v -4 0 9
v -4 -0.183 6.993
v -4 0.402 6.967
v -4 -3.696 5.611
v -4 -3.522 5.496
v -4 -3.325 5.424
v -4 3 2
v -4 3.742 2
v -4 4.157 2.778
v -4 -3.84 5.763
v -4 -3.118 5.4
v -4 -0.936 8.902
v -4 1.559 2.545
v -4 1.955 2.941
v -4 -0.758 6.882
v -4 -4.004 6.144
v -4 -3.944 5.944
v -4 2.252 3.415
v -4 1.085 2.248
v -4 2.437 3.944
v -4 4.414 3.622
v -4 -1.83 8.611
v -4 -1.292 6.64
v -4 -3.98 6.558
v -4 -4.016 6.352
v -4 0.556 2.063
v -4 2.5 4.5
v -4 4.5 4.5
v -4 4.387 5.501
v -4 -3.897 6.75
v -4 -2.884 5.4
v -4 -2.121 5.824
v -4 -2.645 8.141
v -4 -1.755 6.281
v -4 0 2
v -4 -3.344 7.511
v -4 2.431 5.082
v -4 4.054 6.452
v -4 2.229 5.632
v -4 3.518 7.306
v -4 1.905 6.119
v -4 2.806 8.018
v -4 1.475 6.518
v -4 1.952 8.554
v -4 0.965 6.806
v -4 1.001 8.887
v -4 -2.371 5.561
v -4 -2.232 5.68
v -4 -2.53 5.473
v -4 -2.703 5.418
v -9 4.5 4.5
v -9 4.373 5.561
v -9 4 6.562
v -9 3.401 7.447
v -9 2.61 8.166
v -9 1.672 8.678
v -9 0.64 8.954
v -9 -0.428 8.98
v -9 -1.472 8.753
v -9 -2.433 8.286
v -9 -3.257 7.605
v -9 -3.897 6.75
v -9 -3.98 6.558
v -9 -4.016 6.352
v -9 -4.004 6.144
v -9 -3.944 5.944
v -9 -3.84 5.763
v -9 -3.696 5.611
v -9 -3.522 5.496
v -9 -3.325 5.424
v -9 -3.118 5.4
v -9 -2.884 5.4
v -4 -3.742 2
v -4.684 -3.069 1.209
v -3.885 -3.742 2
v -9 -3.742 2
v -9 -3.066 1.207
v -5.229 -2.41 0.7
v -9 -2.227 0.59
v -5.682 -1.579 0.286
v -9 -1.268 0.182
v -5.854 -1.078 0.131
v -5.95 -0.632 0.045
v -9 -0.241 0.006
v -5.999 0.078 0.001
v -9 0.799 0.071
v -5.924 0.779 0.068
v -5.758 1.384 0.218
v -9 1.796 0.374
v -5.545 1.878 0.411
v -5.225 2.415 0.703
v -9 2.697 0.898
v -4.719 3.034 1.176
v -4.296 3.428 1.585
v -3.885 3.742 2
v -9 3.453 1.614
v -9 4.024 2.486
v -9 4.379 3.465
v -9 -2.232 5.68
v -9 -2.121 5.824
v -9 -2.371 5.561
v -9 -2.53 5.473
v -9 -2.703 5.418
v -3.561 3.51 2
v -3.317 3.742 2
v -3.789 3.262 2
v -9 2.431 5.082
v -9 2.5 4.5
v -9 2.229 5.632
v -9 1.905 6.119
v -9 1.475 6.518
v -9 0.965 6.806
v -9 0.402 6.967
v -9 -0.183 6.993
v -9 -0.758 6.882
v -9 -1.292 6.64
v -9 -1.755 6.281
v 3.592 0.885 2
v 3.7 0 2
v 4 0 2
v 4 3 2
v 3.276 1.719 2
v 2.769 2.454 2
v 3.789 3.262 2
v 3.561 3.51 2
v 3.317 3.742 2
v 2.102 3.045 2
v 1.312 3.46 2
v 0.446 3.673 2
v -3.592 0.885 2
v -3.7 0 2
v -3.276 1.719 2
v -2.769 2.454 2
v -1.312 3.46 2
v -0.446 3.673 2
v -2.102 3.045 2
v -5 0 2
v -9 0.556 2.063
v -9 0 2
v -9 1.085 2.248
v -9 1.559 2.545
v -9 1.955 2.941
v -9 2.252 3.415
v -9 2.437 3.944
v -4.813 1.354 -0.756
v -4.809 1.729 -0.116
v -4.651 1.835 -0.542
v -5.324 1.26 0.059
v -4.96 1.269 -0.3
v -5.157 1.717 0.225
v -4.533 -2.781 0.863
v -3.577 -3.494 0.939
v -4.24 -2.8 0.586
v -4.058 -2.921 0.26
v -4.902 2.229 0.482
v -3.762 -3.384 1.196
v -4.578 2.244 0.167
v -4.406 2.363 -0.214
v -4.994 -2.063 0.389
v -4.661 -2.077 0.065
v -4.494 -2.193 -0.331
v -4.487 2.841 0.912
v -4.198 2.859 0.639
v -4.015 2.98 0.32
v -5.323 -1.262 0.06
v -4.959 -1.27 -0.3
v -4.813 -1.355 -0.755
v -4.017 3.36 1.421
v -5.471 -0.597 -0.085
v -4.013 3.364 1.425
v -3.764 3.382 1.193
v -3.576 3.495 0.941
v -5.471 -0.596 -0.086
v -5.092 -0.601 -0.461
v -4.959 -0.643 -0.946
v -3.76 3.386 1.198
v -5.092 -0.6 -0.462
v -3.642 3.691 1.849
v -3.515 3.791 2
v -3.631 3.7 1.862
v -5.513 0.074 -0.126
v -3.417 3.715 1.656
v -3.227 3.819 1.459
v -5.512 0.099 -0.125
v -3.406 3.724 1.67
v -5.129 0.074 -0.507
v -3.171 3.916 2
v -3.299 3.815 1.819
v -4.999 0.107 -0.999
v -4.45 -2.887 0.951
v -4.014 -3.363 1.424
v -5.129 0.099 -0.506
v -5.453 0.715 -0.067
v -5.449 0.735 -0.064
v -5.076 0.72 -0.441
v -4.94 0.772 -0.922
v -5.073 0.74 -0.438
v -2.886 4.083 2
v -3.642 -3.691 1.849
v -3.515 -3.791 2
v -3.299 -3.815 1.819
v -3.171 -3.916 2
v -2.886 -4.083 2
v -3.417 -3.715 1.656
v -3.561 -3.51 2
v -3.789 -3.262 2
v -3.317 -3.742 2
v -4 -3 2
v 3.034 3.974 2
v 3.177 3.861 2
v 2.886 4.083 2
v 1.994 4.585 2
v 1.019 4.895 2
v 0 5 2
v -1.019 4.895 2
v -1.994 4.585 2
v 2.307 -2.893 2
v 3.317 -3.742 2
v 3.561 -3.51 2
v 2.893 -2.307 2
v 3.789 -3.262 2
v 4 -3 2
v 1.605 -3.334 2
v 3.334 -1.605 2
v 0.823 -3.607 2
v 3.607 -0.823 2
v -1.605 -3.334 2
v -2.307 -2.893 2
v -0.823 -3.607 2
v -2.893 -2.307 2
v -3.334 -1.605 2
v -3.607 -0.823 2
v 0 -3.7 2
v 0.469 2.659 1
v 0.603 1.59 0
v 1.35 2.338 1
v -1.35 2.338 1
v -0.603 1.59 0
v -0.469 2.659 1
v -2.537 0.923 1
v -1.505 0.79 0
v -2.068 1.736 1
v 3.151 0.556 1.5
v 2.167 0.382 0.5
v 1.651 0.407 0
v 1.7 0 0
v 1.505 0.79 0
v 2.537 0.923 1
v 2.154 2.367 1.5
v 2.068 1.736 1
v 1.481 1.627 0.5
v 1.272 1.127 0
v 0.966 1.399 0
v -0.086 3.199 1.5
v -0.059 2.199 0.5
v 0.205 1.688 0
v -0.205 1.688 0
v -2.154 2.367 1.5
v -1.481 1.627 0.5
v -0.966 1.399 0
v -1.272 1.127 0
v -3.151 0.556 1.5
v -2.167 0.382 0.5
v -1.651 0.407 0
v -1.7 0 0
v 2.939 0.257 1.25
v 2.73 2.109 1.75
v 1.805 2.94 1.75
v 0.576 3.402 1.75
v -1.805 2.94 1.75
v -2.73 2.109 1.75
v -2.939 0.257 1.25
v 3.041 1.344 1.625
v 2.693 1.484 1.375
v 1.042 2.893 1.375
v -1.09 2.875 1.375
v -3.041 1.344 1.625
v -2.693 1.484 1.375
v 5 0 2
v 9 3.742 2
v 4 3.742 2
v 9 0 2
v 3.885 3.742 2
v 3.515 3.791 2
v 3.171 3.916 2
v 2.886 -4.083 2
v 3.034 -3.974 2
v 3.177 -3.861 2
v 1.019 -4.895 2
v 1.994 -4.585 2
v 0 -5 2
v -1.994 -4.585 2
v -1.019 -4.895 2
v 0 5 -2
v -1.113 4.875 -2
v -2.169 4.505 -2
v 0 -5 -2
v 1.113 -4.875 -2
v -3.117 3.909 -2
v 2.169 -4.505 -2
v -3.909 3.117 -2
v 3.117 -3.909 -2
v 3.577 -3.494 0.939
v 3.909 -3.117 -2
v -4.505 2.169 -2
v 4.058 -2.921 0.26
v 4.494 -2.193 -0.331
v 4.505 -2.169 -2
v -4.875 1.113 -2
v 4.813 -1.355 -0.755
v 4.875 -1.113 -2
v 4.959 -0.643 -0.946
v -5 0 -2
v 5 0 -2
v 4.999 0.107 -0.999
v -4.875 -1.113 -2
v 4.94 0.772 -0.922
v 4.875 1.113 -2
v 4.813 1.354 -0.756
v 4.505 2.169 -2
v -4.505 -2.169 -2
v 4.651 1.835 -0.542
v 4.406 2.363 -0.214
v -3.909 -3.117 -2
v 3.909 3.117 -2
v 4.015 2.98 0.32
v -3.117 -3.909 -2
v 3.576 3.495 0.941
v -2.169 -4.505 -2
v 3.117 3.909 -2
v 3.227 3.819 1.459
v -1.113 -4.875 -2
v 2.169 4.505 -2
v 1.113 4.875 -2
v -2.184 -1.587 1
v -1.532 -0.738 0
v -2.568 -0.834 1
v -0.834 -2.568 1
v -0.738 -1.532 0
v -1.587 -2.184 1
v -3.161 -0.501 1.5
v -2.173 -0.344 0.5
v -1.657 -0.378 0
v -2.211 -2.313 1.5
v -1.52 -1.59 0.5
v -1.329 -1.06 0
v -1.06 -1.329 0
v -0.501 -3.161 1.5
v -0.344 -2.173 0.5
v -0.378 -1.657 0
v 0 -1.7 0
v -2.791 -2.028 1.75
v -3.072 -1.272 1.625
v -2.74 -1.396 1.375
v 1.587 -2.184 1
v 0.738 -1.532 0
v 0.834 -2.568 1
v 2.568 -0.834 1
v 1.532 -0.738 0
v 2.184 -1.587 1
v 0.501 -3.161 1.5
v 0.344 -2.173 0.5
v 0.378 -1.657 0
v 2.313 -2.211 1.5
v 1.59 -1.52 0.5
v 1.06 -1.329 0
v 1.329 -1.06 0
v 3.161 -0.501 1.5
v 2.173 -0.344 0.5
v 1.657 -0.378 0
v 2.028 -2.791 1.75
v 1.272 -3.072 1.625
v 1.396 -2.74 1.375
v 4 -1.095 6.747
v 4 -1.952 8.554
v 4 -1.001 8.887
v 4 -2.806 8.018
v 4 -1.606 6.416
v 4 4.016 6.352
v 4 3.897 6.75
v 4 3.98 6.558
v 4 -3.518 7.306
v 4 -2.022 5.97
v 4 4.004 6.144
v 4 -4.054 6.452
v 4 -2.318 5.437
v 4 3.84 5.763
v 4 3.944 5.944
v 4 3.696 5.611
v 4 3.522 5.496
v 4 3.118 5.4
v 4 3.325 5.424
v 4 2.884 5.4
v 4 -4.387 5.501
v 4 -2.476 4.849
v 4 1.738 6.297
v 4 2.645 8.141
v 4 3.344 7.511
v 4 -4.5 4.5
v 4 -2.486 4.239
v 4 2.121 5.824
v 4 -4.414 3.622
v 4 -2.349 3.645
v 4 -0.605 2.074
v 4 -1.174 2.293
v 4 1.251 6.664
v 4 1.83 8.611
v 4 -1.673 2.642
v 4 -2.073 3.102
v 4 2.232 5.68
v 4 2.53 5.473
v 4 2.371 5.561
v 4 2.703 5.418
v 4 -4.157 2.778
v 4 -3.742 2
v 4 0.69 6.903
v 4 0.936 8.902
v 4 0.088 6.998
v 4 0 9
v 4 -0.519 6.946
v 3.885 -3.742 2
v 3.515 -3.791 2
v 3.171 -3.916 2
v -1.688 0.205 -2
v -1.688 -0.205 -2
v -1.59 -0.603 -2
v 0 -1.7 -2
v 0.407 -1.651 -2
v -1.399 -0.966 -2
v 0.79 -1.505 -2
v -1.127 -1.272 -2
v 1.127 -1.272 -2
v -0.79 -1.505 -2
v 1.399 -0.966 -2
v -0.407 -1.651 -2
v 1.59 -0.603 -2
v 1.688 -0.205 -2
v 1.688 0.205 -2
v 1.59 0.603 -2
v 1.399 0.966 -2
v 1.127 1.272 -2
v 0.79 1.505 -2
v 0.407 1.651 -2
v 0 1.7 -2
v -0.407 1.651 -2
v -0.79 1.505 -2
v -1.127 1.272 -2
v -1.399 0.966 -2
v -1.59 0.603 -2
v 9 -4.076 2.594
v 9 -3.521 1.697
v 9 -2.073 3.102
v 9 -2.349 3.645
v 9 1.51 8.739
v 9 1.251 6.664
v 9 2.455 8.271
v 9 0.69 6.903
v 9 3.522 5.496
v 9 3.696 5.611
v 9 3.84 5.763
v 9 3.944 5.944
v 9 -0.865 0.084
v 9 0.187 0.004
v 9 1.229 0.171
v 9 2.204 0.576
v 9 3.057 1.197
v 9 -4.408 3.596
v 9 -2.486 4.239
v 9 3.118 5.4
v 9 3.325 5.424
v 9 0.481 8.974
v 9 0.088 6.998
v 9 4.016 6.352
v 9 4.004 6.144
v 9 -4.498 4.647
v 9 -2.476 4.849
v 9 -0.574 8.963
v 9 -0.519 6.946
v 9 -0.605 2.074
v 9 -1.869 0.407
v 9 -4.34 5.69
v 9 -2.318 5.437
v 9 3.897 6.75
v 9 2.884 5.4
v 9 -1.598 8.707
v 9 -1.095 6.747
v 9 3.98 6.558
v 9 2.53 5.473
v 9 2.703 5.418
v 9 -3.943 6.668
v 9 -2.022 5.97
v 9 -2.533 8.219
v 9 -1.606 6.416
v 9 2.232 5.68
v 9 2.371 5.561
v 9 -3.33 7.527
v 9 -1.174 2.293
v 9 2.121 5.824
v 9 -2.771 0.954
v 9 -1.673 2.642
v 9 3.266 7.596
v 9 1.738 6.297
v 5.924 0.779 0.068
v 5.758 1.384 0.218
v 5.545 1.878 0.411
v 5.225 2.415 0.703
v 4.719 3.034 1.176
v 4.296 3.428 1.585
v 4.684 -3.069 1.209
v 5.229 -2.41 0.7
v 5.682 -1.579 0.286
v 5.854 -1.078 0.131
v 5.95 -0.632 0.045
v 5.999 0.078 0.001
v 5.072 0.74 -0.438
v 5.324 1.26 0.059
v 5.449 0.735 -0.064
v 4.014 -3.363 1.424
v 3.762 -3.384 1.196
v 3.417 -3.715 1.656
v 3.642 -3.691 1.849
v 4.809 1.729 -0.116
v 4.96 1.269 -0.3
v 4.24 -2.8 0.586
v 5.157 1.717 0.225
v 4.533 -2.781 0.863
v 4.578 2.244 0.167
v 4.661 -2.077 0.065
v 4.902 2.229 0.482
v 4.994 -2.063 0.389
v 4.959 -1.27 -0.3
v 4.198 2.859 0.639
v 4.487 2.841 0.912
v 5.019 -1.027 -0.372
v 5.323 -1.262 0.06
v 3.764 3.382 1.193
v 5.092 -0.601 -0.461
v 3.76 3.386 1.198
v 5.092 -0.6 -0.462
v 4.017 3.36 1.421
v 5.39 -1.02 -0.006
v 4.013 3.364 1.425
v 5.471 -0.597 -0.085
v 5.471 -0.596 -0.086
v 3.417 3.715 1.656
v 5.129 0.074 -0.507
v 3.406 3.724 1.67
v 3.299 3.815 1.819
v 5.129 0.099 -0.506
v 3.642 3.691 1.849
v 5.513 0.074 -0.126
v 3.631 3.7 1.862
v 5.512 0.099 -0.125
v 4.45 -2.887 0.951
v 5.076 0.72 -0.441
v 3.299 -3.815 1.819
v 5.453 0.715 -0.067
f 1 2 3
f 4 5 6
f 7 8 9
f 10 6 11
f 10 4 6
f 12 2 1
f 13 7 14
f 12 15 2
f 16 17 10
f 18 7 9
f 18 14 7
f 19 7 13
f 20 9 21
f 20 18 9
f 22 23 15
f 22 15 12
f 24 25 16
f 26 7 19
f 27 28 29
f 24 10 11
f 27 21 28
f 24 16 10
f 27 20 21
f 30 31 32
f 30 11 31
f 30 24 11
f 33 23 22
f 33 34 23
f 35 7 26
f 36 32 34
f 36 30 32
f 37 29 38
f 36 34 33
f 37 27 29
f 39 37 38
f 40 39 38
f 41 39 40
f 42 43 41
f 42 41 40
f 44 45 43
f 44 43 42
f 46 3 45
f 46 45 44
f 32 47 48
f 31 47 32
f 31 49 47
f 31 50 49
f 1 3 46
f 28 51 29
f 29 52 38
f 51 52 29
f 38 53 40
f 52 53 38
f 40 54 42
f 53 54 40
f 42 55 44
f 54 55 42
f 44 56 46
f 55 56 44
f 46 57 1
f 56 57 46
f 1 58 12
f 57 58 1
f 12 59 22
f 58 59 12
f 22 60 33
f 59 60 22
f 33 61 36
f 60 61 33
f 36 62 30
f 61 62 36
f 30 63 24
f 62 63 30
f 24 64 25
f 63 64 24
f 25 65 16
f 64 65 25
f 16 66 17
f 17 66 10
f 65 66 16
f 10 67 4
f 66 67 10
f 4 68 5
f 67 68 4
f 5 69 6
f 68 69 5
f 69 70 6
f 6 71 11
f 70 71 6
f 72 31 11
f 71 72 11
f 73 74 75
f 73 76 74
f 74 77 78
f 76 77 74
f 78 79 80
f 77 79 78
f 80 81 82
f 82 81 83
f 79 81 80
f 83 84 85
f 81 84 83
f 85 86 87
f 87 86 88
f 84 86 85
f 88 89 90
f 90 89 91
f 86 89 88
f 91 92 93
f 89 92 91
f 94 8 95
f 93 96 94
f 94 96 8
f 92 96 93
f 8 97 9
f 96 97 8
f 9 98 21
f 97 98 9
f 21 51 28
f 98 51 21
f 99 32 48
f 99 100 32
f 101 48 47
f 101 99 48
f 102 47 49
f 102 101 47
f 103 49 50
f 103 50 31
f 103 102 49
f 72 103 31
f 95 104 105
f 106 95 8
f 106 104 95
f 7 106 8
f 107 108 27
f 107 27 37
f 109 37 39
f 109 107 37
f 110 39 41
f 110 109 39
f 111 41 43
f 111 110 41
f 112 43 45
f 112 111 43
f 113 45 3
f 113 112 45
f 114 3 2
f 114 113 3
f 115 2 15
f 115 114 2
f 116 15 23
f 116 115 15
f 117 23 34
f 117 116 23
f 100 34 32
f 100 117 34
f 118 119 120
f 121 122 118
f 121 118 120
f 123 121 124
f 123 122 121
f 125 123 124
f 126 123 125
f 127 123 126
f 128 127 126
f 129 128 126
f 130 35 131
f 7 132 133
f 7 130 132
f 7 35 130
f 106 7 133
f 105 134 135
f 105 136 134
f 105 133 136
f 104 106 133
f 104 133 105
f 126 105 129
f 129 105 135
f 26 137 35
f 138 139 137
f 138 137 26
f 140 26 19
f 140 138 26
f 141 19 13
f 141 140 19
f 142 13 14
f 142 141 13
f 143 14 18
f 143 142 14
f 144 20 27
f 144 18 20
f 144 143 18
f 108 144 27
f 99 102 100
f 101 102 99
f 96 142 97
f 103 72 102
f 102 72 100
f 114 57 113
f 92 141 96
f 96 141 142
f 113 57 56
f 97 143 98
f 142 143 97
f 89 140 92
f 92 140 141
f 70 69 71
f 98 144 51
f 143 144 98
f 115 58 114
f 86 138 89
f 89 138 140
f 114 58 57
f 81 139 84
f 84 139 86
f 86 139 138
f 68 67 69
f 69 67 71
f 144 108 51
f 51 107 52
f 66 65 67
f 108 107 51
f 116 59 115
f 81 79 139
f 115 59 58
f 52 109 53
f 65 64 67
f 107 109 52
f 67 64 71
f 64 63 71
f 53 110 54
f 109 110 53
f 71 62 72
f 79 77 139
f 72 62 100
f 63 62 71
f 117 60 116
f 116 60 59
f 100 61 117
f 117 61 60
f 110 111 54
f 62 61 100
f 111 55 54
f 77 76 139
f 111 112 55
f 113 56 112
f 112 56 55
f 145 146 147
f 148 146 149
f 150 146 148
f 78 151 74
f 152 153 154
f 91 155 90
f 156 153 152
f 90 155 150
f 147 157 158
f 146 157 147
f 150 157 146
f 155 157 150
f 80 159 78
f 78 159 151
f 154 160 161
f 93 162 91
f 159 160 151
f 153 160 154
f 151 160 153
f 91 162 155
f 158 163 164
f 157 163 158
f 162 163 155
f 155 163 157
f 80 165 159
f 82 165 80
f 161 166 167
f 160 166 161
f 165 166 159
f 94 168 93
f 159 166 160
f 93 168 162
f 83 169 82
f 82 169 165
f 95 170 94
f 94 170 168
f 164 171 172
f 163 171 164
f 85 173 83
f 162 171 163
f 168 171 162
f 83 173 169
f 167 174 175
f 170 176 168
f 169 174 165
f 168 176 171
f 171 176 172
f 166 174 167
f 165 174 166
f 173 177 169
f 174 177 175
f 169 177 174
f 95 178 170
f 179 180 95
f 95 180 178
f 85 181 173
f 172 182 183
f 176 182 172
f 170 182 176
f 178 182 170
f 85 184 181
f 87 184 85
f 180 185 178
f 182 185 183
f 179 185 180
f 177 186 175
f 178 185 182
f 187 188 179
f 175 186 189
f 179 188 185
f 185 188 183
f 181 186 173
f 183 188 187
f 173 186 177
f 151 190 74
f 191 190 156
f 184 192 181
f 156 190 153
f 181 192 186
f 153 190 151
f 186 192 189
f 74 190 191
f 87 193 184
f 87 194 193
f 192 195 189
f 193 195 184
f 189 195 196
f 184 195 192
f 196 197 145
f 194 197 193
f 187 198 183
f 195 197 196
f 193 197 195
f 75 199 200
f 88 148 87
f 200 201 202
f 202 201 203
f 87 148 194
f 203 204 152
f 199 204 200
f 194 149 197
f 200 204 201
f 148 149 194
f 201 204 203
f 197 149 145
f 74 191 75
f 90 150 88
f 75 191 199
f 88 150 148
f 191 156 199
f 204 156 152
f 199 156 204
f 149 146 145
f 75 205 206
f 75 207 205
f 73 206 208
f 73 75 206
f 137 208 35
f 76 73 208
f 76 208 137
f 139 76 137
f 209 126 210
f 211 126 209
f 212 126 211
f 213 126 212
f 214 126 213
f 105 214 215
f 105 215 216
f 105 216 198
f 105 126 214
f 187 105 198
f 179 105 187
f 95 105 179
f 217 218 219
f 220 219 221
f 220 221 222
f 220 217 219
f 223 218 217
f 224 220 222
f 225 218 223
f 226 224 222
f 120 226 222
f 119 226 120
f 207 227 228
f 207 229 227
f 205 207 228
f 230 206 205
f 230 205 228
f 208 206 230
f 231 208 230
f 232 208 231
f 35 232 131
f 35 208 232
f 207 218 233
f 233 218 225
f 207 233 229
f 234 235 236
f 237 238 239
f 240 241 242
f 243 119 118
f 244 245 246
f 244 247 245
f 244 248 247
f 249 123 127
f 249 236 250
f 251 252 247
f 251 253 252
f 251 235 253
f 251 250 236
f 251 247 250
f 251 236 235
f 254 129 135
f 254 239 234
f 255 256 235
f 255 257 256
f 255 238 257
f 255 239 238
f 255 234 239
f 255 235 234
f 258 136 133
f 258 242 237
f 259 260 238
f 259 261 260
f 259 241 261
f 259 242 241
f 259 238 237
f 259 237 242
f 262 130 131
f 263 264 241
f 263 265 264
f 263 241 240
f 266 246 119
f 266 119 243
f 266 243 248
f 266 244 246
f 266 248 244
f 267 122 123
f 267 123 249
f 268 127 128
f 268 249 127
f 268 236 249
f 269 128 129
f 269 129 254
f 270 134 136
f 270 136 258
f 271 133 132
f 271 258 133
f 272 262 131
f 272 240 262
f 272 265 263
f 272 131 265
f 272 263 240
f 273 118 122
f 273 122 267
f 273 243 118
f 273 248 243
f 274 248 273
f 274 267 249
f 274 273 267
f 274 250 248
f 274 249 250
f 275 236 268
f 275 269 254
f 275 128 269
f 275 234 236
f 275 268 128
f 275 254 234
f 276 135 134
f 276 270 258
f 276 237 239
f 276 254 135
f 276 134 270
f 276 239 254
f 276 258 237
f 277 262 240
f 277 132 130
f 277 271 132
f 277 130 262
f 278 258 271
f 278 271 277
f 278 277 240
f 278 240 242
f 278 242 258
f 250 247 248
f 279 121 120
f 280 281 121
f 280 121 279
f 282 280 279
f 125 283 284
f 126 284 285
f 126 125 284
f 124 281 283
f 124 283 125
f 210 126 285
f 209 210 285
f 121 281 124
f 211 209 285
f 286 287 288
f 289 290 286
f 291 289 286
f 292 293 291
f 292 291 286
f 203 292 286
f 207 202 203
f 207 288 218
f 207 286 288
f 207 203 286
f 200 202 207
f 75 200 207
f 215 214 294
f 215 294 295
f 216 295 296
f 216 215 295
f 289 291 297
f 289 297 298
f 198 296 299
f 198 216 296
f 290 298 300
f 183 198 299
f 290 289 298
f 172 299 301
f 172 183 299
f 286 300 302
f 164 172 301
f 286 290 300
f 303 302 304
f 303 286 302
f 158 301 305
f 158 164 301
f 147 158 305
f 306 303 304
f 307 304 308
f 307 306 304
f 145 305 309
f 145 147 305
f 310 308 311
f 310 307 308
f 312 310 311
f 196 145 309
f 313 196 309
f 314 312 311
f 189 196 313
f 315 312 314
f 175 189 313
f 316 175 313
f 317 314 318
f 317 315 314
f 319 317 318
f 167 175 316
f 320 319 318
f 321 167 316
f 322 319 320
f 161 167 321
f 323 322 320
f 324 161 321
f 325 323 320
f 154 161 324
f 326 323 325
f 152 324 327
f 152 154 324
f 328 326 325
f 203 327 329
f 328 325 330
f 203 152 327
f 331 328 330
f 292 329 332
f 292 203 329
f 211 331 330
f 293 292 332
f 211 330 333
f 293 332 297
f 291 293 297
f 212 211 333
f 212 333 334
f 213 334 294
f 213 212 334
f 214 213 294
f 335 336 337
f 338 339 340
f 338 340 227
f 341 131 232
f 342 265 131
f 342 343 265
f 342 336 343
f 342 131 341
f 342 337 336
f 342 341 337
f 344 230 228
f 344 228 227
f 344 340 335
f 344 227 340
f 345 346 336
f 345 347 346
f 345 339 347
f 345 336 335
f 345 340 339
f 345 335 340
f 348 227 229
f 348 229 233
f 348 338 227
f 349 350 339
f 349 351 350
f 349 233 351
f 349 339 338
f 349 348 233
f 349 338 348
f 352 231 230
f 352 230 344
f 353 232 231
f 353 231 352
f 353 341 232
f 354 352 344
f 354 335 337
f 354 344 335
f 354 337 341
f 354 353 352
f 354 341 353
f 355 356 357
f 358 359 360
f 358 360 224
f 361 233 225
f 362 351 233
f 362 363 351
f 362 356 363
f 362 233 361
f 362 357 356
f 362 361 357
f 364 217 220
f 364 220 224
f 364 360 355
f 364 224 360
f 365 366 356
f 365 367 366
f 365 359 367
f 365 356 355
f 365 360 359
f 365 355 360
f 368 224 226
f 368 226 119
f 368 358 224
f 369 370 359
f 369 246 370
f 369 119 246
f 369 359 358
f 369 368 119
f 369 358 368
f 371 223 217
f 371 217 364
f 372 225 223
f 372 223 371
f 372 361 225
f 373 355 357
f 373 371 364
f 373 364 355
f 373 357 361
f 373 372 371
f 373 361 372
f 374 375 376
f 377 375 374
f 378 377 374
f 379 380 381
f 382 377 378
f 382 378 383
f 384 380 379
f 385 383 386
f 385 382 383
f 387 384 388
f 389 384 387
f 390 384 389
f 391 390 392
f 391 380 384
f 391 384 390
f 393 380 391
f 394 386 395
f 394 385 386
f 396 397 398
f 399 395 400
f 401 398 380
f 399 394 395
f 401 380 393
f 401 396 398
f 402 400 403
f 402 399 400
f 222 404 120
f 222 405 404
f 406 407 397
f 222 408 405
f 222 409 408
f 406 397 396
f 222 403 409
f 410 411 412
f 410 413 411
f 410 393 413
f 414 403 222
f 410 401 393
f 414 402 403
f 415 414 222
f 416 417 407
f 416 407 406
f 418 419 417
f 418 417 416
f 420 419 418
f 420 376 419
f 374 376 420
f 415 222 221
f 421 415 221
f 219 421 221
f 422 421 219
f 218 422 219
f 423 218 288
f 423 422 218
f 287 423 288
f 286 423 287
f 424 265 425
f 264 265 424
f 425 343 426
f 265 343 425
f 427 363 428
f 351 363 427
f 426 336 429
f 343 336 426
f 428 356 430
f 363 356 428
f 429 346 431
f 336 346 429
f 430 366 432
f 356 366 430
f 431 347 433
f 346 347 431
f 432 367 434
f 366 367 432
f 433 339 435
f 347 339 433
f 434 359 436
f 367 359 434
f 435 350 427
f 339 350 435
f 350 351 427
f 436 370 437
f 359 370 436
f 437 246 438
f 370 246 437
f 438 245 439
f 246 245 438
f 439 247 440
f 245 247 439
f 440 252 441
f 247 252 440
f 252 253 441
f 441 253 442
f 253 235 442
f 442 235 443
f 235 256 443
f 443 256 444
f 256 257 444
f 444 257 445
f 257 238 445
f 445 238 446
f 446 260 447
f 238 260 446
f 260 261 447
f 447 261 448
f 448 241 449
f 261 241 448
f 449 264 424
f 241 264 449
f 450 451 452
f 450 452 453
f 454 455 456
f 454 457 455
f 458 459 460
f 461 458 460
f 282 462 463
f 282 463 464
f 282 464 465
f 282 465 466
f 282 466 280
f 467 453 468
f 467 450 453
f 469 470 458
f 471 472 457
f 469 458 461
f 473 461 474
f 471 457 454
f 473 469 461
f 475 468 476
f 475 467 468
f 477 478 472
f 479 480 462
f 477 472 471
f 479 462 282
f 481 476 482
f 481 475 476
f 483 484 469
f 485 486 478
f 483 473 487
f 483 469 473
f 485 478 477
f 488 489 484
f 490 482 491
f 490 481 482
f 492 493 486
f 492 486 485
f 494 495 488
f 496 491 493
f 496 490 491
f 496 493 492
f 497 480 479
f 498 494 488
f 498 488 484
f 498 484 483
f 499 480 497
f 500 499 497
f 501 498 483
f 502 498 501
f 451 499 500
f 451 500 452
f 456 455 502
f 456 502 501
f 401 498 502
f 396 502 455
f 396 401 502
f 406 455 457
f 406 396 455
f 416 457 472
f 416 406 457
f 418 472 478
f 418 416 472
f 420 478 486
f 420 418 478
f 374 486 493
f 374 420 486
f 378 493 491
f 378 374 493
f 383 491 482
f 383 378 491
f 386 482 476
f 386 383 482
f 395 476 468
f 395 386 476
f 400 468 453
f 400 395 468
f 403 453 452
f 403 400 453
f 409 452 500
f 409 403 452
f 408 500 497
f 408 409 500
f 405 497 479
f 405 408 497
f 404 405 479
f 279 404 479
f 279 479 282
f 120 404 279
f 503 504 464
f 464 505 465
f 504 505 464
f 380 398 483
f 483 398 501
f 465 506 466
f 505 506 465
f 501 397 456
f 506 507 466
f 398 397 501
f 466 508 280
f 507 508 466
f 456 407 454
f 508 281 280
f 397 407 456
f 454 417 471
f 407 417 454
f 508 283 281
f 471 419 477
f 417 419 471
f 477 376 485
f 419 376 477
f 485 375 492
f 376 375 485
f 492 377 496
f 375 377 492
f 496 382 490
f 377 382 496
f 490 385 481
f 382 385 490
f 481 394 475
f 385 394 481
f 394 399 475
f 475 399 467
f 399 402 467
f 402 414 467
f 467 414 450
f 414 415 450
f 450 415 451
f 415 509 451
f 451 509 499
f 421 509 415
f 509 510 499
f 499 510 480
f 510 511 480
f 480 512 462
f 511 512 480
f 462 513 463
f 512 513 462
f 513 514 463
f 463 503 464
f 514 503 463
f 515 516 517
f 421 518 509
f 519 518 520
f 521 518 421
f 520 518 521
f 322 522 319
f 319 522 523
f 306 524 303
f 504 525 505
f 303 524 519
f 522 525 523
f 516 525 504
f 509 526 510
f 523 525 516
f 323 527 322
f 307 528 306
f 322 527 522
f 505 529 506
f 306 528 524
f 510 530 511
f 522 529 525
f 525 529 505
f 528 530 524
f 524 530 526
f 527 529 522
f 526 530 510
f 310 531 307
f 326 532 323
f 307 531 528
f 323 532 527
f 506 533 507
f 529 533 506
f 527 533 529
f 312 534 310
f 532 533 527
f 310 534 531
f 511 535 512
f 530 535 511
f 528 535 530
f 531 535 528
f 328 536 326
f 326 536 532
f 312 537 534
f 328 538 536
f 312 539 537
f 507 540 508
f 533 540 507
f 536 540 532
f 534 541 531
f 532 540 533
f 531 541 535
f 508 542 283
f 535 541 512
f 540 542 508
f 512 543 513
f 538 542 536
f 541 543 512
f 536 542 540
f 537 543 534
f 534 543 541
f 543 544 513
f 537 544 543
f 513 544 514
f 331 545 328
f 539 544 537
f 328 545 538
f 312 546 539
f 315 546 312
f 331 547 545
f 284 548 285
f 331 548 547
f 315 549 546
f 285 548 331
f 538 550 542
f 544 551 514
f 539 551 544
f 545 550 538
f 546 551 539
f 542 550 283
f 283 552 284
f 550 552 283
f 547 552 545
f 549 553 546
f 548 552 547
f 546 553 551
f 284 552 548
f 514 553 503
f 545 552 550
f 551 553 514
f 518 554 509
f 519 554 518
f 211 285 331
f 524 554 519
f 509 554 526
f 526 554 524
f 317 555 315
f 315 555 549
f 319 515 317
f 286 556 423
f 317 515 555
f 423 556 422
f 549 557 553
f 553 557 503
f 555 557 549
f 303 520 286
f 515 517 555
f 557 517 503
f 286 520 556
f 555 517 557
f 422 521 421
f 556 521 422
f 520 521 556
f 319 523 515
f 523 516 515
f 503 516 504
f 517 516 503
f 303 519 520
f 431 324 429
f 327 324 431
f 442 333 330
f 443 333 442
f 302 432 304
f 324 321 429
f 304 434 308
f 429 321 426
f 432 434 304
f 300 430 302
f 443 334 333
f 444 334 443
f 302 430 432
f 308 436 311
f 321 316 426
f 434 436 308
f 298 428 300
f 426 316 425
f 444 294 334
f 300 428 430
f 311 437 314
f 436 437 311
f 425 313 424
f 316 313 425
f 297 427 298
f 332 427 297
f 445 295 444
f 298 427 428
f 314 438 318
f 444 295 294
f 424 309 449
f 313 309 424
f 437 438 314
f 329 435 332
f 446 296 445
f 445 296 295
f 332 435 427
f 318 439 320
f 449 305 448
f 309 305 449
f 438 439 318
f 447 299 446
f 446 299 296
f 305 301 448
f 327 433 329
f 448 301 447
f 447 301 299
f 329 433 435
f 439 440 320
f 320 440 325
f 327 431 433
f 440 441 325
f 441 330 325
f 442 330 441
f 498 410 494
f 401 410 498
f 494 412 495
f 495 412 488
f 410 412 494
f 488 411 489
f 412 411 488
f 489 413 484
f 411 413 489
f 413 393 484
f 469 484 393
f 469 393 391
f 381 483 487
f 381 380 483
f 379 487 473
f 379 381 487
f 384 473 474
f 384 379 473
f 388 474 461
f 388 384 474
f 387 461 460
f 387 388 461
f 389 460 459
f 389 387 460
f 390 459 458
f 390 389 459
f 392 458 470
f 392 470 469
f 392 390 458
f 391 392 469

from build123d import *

# Parameters (mm, degrees)
SKETCH001_R        = 4.5
SKETCH001_R_2      = 2.5
PAD001_DEPTH       = 9
SKETCH_W           = 8
SKETCH_H           = 7
POCKET_DEPTH       = 4.5
SKETCH006_R        = 5
PAD_DEPTH          = 4
SKETCH004_W        = 4.5
SKETCH004_H        = 3.4
POCKET001_DEPTH    = 5
POLARPATTERN_COUNT = 2
SKETCH007_R        = 1.7
POCKET002_DEPTH    = 4
FILLET_R           = 1
CHAMFER_SIZE       = 2
FILLET001_R        = 0.9


with BuildPart() as part:
    # Sketch001 → Pad001 (new body, symmetric)
    with BuildSketch(Plane.YZ):
        with Locations((0, 4.5)):
            Circle(SKETCH001_R)
        with Locations((0, 4.5)):
            Circle(SKETCH001_R_2, mode=Mode.SUBTRACT)
    extrude(amount=PAD001_DEPTH, both=True)

    # Sketch → Pocket (cut, symmetric)
    with BuildSketch(Plane.XZ):
        with Locations((0, 5.5)):
            Rectangle(SKETCH_W, SKETCH_H)
    extrude(amount=POCKET_DEPTH, both=True, mode=Mode.SUBTRACT)

    # Sketch006 → Pad (join)
    with BuildSketch(Plane(origin=(0, 0, 2), x_dir=(0, -1, 0), z_dir=(0, 0, 1))):
        Circle(SKETCH006_R)
    extrude(amount=-PAD_DEPTH)

    # Sketch004 → Pocket001 (cut)
    with BuildSketch(Plane.YZ.offset(9)):
        with Locations((2.25, 3.7)):
            Rectangle(SKETCH004_W, SKETCH004_H)
    pocket001 = extrude(amount=-POCKET001_DEPTH, mode=Mode.SUBTRACT)

    # PolarPattern: Pocket001 ×2 about axis
    polarpattern_axis = Axis((0, 0, 0), (0, 0, 1))
    for i in range(1, POLARPATTERN_COUNT):
        add(pocket001.rotate(polarpattern_axis, i * 360 / POLARPATTERN_COUNT), mode=Mode.SUBTRACT)

    # Sketch007 (on Face9 of Pad) → Pocket002 (cut)
    with BuildSketch(Plane(origin=(0, 0, 2), x_dir=(0, -1, 0), z_dir=(0, 0, 1))):
        Circle(SKETCH007_R)
    extrude(amount=-POCKET002_DEPTH, mode=Mode.SUBTRACT)

    # Fillet
    fillet_edges = [part.edges().sort_by_distance(p)[0] for p in [
        (-5, 0, 0),
        (5, 0, 0),
    ]]
    fillet(fillet_edges, radius=FILLET_R)

    # Chamfer
    chamfer_edges = [part.edges().sort_by_distance(p)[0] for p in [
        (1.202082, -1.202082, 2),
    ]]
    chamfer(chamfer_edges, length=CHAMFER_SIZE)

    # Fillet001
    fillet001_edges = [part.edges().sort_by_distance(p)[0] for p in [
        (6.5, 2.332381, 5.4),
        (6.5, 4.409082, 5.4),
        (-6.5, -2.332381, 5.4),
        (-6.5, -4.409082, 5.4),
    ]]
    fillet(fillet001_edges, radius=FILLET001_R)


solid = part.part
